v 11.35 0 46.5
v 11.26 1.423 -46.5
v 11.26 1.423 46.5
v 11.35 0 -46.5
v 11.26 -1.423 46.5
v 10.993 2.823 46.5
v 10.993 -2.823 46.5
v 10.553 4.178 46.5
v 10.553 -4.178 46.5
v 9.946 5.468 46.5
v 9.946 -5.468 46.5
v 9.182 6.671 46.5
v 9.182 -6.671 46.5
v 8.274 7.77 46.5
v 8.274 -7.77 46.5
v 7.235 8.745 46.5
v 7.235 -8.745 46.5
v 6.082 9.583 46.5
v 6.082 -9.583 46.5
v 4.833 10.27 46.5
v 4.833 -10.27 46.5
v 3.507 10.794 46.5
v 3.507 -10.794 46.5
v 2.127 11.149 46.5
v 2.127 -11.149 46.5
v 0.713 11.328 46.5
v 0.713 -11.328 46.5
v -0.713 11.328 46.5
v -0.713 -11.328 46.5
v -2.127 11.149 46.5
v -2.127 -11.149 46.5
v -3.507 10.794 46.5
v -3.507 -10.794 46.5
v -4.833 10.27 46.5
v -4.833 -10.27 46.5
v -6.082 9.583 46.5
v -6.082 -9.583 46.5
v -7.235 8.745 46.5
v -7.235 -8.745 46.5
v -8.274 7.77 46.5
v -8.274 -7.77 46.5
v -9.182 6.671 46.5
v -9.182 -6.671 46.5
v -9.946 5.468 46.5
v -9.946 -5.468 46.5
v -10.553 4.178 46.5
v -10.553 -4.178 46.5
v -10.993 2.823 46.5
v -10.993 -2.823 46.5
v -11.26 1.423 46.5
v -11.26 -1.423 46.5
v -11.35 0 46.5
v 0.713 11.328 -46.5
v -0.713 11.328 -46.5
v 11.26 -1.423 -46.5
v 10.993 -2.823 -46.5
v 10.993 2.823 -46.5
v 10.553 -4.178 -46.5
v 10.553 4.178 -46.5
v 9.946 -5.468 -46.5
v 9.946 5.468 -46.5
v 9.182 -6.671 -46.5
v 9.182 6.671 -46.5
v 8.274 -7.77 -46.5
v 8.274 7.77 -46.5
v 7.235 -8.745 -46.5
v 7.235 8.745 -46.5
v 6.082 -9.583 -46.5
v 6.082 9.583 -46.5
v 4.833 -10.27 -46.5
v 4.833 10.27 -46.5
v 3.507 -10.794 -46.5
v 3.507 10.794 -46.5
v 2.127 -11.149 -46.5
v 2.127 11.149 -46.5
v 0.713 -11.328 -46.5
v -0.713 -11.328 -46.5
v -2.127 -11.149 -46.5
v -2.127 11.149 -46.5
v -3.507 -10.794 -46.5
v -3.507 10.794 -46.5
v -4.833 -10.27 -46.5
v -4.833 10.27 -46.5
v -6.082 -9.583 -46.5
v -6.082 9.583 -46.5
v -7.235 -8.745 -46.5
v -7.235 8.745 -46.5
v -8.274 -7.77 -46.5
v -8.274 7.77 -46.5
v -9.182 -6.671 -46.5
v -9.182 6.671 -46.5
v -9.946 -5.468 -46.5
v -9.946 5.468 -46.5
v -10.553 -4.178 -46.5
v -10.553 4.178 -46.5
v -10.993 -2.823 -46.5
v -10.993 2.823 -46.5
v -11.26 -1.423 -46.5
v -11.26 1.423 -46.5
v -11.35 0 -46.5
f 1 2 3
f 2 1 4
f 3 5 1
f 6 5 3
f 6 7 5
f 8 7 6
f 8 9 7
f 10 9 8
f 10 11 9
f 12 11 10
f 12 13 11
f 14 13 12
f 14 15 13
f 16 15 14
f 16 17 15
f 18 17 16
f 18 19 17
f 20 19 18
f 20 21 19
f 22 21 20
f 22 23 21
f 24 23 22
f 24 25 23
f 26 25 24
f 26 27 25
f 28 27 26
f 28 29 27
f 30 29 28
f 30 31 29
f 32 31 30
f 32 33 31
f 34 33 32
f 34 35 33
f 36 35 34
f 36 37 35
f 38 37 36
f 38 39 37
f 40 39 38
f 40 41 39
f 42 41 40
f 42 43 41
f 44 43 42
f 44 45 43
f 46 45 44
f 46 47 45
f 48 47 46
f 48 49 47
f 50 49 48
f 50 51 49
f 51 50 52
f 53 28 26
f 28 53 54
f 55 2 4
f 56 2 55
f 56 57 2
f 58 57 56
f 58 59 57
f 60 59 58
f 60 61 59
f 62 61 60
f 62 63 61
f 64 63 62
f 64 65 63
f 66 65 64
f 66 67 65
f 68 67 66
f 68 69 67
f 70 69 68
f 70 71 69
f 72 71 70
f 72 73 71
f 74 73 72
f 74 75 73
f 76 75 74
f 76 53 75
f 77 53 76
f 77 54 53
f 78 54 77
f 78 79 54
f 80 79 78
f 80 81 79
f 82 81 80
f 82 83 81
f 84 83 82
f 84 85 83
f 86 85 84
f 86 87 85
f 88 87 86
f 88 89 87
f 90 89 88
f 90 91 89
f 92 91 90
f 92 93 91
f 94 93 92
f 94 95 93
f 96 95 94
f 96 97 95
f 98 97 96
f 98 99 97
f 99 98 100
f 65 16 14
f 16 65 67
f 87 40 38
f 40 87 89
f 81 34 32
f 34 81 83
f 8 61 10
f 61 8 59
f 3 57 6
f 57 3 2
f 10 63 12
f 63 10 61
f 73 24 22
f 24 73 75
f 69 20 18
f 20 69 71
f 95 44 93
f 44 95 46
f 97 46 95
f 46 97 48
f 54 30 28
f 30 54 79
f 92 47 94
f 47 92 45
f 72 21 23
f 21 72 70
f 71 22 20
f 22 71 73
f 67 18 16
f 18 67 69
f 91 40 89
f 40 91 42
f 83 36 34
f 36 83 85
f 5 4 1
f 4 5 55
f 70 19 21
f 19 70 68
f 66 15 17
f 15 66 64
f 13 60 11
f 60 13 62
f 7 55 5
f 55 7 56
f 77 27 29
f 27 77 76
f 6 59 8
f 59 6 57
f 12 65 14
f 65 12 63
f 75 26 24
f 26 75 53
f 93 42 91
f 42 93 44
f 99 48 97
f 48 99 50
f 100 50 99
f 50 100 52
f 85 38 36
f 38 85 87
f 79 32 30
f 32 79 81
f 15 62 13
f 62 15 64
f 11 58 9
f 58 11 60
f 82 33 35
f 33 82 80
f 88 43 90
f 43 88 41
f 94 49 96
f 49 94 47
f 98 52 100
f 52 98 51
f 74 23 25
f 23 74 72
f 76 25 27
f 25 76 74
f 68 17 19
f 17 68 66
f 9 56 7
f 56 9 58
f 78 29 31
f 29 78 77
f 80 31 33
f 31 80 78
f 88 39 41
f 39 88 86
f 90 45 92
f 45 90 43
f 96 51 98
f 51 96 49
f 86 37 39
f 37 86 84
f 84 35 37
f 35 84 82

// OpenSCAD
$fn = 50;


difference() {
	union() {
		translate(v = [0, 0, -46.5000000000]) {
			cylinder(h = 93, r = 11.3500000000);
		}
	}
	union() {
		translate(v = [0, 0, -100.0000000000]) {
			cylinder(h = 200, r = 0);
		}
	}
}
